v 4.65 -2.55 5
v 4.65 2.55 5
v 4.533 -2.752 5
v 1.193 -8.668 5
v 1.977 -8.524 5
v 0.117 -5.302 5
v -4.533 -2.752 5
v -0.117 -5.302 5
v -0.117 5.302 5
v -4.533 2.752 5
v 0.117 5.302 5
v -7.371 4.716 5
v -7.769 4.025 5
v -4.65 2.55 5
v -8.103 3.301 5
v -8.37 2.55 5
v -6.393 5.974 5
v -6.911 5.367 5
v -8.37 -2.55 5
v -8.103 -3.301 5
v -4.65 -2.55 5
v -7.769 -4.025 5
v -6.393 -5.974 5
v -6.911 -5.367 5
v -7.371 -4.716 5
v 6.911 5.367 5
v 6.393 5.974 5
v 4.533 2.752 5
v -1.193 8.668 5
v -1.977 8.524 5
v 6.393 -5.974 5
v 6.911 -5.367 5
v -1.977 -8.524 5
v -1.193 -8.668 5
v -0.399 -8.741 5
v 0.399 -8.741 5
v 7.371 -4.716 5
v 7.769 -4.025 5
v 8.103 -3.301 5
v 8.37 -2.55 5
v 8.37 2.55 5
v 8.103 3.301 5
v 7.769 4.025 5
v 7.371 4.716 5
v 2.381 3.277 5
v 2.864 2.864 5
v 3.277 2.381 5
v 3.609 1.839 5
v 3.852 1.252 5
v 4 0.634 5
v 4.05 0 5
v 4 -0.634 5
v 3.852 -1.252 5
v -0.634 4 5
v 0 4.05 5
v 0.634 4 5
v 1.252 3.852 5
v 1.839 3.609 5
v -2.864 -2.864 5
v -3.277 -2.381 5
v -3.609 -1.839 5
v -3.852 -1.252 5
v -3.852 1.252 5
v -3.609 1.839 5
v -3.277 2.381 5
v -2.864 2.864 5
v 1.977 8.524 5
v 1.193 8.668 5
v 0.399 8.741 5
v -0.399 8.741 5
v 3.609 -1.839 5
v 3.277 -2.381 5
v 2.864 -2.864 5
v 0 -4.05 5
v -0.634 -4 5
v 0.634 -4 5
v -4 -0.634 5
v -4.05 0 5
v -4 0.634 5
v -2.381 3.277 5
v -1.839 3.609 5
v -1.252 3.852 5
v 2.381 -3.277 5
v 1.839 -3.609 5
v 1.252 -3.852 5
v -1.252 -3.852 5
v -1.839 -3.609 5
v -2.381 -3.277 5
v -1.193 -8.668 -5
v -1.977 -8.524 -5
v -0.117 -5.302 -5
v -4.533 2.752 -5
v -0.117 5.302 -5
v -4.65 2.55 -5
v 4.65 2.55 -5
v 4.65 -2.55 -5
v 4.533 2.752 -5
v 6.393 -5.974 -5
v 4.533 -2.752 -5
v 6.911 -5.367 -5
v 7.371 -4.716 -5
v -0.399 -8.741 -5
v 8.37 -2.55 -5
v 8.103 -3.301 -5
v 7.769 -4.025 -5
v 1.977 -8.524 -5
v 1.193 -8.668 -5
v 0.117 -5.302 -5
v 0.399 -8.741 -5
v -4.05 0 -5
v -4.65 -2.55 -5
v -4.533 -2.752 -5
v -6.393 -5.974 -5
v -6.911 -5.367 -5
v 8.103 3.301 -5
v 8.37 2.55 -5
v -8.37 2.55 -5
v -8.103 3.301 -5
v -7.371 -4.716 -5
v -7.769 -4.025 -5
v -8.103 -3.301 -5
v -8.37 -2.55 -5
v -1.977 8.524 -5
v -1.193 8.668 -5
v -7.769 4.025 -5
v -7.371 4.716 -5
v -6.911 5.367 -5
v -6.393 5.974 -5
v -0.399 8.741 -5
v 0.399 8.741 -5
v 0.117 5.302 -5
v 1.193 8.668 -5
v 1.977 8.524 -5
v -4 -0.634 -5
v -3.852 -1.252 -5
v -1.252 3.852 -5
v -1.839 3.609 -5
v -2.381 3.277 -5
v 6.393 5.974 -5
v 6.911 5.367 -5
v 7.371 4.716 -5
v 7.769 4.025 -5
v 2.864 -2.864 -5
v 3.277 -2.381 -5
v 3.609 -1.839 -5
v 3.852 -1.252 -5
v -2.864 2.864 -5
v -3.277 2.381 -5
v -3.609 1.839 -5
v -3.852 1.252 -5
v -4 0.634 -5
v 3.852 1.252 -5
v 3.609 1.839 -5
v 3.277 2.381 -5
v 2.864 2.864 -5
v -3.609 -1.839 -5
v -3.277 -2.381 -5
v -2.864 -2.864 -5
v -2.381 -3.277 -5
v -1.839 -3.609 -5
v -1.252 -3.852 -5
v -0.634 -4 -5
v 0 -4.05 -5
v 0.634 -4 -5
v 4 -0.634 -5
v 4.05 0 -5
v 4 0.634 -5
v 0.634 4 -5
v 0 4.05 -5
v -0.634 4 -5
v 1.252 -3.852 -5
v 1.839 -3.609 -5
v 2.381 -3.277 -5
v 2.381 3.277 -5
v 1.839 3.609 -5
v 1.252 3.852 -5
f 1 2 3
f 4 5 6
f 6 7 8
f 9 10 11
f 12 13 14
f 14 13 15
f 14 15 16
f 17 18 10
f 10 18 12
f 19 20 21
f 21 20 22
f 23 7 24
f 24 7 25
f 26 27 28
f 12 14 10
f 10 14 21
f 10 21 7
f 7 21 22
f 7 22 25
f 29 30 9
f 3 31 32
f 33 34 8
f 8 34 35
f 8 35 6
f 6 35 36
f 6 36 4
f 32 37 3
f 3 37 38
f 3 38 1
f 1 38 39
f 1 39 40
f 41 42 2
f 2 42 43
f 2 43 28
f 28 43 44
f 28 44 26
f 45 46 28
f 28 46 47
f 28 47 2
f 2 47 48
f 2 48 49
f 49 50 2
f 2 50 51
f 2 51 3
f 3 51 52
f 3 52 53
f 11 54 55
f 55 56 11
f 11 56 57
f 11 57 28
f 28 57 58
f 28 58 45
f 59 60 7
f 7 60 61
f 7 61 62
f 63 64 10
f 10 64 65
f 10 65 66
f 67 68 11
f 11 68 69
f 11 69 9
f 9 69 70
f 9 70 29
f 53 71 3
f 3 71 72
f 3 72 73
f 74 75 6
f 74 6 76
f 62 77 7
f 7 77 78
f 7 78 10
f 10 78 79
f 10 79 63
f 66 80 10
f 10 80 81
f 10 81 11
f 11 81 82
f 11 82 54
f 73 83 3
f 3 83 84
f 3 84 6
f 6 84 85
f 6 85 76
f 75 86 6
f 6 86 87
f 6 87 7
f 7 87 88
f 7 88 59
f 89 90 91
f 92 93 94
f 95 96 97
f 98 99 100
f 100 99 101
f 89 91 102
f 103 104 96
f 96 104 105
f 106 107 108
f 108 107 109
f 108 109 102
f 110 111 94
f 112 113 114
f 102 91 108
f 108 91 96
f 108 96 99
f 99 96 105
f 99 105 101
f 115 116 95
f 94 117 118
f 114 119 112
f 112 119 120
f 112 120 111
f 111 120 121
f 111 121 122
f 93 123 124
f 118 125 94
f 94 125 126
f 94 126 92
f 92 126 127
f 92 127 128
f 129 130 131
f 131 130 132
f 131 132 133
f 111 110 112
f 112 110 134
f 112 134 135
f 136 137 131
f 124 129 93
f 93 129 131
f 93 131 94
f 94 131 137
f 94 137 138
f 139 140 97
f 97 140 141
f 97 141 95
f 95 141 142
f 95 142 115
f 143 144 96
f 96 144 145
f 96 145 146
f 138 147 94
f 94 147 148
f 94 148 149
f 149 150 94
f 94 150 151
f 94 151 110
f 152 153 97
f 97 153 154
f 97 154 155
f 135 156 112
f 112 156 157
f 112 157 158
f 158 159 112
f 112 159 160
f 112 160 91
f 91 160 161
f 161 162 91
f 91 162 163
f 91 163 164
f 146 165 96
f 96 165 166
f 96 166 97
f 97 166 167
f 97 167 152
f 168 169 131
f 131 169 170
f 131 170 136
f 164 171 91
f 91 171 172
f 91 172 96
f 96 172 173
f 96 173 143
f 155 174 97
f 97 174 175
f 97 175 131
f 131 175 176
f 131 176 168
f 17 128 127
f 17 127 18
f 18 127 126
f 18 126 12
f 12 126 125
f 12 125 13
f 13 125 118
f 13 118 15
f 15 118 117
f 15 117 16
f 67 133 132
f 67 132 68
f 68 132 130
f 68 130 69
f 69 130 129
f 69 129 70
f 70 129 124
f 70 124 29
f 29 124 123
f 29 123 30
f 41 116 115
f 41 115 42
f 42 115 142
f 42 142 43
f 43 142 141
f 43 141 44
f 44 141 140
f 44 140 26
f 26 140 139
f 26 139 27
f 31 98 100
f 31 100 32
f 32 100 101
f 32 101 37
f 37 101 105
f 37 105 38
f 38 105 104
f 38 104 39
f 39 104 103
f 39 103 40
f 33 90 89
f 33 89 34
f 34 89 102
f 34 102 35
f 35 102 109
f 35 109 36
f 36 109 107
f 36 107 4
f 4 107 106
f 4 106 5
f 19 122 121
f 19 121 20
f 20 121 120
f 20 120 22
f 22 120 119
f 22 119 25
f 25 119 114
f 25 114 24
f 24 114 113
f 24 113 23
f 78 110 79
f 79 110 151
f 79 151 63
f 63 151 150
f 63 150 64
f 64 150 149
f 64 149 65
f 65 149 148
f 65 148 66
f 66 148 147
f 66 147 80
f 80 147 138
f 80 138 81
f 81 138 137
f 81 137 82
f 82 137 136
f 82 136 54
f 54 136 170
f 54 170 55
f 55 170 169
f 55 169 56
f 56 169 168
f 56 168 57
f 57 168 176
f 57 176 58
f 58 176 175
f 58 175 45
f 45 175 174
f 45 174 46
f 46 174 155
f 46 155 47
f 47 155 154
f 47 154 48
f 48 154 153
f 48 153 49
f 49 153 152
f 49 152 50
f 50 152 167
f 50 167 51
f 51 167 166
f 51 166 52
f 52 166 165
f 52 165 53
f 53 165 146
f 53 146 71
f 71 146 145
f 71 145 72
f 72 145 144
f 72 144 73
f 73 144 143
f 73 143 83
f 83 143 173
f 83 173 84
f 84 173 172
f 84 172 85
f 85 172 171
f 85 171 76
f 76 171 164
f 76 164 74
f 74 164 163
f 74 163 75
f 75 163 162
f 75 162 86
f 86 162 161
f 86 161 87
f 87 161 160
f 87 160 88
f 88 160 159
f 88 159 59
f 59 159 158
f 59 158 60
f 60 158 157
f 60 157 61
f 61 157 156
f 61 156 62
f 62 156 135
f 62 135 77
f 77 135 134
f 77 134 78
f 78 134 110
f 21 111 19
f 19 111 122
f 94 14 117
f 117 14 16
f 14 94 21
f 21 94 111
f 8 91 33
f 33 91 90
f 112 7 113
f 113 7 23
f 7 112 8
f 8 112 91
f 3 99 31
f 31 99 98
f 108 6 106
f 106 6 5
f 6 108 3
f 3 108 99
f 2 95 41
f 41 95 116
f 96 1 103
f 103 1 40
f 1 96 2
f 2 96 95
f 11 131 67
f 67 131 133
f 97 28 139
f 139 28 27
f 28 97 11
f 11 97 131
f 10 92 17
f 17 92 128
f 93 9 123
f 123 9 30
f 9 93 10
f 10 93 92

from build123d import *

# Parameters (mm, degrees)
SKETCH1_R           = 8.75
SKETCH1_R_2         = 4.05
BOSS_EXTRUDE1_DEPTH = 5
SKETCH2_W           = 5.1
SKETCH2_H           = 10
CUT_EXTRUDE3_DEPTH  = 4.1
CIRPATTERN1_COUNT   = 6


with BuildPart() as part:
    # Sketch1 → Boss-Extrude1 (new, symmetric)
    with BuildSketch(Plane.XY):
        Circle(SKETCH1_R)
        Circle(SKETCH1_R_2, mode=Mode.SUBTRACT)
    extrude(amount=BOSS_EXTRUDE1_DEPTH, both=True)

    # Sketch2 → Cut-Extrude3 (cut)
    with BuildSketch(Plane(origin=(-8.75, -17.193061184, 0), x_dir=(0, -1, 0), z_dir=(1, 0, 0))):
        with Locations((-17.193061184, 0)):
            Rectangle(SKETCH2_W, SKETCH2_H)
    cut_extrude3 = extrude(amount=CUT_EXTRUDE3_DEPTH, mode=Mode.SUBTRACT)

    # CirPattern1: Cut-Extrude3 ×6 about axis
    cirpattern1_axis = Axis((0, 0, 5), (0, 0, 1))
    for i in range(1, CIRPATTERN1_COUNT):
        add(cut_extrude3.rotate(cirpattern1_axis, i * 360 / CIRPATTERN1_COUNT), mode=Mode.SUBTRACT)


solid = part.part
